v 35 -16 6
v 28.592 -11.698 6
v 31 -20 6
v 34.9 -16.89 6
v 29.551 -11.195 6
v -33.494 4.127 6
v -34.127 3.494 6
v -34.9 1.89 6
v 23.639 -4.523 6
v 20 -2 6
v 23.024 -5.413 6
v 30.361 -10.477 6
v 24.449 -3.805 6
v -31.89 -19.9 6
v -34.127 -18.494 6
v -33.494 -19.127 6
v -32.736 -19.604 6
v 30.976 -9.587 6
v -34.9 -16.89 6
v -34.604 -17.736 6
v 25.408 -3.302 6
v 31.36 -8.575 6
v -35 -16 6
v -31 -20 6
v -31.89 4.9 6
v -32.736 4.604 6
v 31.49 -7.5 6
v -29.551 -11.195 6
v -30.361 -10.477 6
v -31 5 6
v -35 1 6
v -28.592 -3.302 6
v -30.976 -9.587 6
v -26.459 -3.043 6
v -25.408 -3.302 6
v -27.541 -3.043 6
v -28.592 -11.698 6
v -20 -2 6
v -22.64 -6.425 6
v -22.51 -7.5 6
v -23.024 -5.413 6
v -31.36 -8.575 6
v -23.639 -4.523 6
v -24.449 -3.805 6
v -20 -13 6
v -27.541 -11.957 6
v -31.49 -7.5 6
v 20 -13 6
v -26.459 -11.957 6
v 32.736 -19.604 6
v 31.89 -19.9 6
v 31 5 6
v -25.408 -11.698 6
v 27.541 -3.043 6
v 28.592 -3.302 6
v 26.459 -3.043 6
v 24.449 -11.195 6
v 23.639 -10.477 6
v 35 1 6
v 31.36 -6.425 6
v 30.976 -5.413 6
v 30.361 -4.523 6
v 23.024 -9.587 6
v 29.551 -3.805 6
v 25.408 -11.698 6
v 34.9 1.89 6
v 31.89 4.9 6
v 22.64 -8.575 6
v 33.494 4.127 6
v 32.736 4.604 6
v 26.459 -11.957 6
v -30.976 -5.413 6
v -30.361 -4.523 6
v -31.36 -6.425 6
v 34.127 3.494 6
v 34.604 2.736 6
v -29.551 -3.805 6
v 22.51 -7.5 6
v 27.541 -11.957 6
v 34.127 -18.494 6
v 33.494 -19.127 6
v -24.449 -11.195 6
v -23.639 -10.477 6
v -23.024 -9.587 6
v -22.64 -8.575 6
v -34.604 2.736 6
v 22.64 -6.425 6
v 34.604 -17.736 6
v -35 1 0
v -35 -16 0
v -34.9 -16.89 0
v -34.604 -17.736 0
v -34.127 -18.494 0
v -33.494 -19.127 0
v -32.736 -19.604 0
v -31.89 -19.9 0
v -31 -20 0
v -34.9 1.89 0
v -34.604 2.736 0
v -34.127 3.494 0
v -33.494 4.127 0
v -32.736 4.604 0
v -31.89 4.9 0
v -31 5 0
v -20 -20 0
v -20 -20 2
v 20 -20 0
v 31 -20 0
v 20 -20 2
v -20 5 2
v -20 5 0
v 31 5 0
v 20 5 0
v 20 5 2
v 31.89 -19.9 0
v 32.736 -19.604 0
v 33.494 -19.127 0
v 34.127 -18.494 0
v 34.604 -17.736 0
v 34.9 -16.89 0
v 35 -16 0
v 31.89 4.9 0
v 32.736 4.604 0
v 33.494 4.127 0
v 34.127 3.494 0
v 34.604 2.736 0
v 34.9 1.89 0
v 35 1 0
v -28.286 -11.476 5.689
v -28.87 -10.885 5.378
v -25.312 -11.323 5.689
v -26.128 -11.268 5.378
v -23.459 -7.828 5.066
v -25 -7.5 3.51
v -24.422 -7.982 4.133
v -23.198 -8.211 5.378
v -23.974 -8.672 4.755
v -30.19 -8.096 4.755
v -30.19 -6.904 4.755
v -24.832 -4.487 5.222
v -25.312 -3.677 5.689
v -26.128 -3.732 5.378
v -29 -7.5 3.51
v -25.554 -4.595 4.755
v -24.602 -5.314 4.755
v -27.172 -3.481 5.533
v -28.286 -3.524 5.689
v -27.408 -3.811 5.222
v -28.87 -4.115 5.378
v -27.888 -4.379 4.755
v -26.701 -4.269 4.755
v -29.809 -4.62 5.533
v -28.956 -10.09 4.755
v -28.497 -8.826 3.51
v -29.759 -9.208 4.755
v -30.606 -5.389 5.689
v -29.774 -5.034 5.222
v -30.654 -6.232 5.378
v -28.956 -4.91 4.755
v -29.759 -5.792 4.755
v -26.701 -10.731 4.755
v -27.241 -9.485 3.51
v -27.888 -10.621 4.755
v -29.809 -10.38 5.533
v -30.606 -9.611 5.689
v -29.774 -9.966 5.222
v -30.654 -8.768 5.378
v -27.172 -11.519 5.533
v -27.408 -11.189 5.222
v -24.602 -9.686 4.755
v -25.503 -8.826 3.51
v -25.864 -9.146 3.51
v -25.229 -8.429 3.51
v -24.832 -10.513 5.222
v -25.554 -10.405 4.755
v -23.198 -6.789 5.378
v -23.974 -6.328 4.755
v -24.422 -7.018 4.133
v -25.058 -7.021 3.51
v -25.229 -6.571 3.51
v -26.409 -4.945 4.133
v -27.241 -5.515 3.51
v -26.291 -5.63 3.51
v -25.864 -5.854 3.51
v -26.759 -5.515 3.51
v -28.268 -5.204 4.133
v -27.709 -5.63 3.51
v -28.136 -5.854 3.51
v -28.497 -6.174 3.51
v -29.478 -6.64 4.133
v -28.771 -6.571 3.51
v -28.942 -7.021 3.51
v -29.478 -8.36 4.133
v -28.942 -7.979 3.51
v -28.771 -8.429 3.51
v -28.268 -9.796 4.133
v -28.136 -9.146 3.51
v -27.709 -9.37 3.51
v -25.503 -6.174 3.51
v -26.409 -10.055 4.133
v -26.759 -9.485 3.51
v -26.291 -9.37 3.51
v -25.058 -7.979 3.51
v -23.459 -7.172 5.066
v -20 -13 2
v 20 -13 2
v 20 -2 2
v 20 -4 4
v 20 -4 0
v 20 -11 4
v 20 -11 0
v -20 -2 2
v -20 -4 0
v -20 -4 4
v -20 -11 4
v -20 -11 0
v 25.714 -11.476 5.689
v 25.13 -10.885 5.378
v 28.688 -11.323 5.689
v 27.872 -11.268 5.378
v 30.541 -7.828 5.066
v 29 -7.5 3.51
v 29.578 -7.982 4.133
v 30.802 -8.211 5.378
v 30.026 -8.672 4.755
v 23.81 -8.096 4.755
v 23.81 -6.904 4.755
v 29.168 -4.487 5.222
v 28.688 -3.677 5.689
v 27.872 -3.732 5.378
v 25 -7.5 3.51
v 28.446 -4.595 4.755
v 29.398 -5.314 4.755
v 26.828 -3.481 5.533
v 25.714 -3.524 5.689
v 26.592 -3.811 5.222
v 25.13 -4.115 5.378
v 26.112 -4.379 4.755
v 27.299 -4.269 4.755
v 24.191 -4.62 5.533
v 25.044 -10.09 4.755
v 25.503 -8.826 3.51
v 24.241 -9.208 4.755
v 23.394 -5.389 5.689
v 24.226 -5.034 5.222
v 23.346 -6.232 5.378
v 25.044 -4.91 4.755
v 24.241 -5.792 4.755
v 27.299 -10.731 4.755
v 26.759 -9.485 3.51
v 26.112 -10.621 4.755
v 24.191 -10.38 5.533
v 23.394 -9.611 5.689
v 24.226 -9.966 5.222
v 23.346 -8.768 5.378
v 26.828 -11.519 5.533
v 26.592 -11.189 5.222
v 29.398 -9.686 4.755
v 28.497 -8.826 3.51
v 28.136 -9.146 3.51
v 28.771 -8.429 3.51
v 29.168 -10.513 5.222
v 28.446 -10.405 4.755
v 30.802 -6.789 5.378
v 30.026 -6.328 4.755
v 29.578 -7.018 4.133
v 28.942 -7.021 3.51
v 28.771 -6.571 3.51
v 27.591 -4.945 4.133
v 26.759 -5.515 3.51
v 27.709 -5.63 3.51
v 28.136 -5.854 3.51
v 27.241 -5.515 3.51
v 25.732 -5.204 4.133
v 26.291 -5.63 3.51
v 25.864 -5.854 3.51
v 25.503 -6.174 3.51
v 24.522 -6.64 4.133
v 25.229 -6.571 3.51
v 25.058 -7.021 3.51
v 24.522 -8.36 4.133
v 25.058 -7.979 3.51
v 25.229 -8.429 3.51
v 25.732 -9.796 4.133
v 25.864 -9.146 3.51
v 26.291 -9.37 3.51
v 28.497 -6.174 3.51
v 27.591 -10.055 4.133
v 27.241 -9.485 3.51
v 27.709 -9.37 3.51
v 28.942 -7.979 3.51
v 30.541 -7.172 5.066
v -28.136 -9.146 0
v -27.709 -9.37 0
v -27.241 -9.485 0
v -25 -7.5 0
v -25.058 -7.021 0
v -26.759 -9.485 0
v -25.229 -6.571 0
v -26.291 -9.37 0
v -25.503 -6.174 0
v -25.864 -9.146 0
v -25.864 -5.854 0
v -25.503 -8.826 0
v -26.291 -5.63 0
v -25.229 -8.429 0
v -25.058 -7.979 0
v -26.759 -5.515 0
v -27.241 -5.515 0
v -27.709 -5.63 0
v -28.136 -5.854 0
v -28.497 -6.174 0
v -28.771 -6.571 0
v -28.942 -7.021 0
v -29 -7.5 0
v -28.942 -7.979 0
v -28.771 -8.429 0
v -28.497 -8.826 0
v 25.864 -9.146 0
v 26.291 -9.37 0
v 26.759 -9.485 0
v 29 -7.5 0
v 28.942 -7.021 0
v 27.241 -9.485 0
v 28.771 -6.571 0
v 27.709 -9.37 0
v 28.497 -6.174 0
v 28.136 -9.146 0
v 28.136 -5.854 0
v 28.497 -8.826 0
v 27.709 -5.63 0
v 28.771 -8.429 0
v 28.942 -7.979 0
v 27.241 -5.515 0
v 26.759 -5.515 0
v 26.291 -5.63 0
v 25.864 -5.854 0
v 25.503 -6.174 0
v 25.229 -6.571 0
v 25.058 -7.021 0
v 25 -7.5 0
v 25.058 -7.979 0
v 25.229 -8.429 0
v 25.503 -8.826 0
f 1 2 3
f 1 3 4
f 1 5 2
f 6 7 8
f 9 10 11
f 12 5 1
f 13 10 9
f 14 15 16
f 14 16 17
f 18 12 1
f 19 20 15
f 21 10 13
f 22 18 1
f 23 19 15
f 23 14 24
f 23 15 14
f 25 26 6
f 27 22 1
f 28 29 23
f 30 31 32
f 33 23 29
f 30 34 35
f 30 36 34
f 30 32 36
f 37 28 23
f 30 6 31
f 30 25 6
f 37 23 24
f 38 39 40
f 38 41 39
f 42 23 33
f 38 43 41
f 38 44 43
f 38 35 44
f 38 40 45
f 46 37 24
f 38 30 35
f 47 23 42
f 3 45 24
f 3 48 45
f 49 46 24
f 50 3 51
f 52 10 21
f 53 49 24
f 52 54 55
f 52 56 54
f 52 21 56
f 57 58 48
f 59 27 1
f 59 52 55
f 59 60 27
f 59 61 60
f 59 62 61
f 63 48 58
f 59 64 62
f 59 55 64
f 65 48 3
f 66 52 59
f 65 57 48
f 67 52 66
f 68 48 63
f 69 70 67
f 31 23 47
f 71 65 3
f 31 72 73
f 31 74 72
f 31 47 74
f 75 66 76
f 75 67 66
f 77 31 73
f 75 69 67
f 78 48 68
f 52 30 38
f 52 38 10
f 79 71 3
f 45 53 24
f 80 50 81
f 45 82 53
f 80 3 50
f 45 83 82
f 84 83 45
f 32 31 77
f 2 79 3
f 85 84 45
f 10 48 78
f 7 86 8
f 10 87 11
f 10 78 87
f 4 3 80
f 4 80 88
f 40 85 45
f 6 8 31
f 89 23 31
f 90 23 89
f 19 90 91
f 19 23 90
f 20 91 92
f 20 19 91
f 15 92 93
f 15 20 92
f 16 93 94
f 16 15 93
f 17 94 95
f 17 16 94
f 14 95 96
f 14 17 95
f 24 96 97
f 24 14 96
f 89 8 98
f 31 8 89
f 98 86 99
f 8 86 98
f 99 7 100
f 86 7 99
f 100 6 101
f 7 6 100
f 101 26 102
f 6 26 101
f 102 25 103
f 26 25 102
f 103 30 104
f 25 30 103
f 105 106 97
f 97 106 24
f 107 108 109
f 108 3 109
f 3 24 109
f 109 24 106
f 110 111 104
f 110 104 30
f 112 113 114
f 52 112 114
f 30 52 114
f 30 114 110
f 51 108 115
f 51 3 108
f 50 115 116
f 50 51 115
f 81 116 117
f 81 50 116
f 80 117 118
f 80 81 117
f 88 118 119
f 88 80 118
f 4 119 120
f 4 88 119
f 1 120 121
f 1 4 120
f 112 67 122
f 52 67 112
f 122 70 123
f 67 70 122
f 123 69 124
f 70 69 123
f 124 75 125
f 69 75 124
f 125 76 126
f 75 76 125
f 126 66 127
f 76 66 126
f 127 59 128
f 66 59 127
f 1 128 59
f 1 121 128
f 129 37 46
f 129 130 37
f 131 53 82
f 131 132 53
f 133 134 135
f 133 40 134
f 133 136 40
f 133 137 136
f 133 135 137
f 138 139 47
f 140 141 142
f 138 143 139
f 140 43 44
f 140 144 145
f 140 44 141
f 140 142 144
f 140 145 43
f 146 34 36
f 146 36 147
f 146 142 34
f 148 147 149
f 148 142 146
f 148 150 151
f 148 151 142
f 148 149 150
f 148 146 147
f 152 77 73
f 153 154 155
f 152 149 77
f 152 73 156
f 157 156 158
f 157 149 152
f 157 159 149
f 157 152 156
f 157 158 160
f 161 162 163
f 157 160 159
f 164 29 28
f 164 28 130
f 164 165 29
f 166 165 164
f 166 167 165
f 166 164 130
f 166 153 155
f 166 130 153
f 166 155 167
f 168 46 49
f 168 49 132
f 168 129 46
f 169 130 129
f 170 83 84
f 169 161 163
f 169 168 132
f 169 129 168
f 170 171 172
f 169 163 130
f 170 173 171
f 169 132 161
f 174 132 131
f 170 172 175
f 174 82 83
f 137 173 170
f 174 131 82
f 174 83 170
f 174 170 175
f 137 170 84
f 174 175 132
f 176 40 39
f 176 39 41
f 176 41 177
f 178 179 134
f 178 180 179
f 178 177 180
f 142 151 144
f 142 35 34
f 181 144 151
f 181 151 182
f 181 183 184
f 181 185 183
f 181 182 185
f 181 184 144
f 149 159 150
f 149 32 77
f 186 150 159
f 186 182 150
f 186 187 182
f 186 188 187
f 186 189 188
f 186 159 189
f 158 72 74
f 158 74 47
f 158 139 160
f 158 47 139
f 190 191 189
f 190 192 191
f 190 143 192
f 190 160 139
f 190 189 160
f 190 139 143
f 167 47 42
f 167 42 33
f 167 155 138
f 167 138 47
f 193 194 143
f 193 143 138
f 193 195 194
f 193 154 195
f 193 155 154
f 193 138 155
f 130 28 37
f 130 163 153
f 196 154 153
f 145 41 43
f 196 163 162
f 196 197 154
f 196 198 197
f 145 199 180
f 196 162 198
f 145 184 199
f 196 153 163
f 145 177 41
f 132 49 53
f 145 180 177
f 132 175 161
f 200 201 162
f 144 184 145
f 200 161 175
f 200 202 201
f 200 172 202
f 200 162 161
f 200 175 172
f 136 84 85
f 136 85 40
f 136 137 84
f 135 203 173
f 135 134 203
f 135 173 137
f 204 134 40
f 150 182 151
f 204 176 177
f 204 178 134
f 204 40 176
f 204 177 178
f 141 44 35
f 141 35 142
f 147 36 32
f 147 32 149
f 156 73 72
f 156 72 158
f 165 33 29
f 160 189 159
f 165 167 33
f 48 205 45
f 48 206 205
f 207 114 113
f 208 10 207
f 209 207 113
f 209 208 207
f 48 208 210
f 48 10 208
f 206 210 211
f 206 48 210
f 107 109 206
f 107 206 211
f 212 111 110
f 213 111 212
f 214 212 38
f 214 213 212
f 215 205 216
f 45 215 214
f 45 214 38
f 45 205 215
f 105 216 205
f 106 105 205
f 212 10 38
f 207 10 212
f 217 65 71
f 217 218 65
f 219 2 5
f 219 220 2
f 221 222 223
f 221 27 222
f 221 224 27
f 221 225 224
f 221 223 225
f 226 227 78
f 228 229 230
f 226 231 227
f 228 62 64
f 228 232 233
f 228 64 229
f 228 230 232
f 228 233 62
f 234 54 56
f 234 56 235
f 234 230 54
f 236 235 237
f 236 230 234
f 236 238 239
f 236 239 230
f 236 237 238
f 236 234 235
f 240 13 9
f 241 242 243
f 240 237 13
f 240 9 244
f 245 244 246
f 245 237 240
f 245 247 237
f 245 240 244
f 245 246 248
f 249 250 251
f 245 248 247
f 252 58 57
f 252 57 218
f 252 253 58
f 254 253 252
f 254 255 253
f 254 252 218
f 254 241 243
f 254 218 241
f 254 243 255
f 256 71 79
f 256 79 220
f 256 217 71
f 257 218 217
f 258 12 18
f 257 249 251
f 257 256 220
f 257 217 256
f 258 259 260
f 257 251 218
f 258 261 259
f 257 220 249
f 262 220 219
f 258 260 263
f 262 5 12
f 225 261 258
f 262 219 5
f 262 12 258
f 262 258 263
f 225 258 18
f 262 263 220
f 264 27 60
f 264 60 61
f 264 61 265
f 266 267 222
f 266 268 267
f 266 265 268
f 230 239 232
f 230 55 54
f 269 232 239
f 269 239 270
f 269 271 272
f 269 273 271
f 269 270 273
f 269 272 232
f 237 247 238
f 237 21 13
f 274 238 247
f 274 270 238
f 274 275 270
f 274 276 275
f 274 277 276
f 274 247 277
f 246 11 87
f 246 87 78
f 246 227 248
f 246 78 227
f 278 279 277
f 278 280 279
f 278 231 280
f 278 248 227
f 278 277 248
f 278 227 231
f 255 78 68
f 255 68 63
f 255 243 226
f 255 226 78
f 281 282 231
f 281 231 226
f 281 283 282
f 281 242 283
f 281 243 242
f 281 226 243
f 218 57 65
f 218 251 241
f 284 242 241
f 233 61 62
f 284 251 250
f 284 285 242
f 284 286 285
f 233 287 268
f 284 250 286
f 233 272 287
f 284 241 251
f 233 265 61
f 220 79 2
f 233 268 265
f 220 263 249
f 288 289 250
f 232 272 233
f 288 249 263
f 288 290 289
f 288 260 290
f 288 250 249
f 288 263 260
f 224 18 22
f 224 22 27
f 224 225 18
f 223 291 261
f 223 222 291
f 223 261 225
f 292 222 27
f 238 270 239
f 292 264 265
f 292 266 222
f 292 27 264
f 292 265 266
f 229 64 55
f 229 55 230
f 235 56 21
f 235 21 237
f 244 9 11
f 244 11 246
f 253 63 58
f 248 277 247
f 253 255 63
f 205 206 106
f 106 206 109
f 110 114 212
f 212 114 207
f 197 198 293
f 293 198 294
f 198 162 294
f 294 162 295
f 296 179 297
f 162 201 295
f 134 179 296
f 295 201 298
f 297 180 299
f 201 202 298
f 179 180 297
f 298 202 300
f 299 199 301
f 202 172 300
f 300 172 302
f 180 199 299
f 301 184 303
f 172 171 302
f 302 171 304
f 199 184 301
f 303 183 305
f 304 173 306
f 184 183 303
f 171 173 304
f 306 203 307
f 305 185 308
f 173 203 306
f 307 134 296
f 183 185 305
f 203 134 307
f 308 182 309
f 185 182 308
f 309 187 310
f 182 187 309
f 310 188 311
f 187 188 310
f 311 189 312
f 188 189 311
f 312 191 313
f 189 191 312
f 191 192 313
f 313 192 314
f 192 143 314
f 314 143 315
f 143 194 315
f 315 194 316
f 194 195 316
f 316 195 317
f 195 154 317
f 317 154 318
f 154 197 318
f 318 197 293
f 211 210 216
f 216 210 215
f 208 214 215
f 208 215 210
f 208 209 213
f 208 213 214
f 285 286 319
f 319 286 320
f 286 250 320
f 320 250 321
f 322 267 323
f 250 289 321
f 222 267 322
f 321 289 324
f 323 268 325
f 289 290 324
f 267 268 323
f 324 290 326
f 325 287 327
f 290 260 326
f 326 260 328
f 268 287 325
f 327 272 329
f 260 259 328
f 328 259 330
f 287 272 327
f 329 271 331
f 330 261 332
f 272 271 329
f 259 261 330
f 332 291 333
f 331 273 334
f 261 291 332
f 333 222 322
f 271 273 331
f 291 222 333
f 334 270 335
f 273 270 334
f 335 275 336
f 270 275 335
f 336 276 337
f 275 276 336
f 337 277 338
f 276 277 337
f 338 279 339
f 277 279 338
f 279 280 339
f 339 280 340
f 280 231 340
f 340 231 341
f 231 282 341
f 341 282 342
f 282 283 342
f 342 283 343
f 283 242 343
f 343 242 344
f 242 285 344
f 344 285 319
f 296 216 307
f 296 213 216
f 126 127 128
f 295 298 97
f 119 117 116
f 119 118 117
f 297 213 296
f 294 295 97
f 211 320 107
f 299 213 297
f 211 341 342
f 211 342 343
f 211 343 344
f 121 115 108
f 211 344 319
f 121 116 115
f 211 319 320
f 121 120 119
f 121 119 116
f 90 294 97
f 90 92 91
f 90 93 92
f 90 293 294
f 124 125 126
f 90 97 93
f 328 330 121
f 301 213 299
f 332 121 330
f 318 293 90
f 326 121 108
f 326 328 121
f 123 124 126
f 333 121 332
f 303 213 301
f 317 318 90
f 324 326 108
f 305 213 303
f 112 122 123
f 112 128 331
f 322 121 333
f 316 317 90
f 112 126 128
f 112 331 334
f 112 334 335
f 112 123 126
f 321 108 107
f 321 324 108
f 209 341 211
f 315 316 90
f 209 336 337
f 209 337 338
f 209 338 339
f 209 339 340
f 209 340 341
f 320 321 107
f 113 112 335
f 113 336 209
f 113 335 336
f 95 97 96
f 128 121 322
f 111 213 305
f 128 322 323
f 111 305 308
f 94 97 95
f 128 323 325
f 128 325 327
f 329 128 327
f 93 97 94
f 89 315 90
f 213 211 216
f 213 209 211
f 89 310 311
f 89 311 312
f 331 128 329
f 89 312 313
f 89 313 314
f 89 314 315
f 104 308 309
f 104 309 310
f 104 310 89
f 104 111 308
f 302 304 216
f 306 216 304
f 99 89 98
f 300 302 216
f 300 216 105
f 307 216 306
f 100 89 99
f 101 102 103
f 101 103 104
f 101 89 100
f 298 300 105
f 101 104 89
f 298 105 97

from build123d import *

# Parameters (mm, degrees)
CYLINDER001_R     = 2
CYLINDER001_DEPTH = 10
CYLINDER003_R     = 2
CYLINDER003_DEPTH = 10
BOX006_W          = 40
BOX006_H          = 11
BOX006_DEPTH      = 10
BOX001_W          = 40
BOX001_H          = 25
BOX001_DEPTH      = 2
BOX_W             = 70
BOX_H             = 25
BOX_DEPTH         = 6
CHAMFER_SIZE      = 2.49
FILLET_R          = 4
BOX003_W          = 40
BOX003_H          = 7
BOX003_DEPTH      = 4


with BuildPart() as screwhole002:
    # Cylinder001 → Cylinder001 (new body)
    with BuildSketch(Plane(origin=(-27, -7.5, 0), x_dir=(1, 0, 0), z_dir=(0, 0, 1))):
        Circle(CYLINDER001_R)
    extrude(amount=CYLINDER001_DEPTH)


with BuildPart() as screwholes:
    # Cylinder003 → Cylinder003 (new body)
    with BuildSketch(Plane(origin=(27, -7.5, 0), x_dir=(1, 0, 0), z_dir=(0, 0, 1))):
        Circle(CYLINDER003_R)
    extrude(amount=CYLINDER003_DEPTH)

    # Fusion001: union ScrewHole002
    add(screwhole002.part)


with BuildPart() as cube001:
    # Box006 → Box006 (new body)
    with BuildSketch(Plane(origin=(-20, -13, 0), x_dir=(1, 0, 0), z_dir=(0, 0, 1))):
        with Locations((20, 5.5)):
            Rectangle(BOX006_W, BOX006_H)
    extrude(amount=BOX006_DEPTH)


with BuildPart() as cube:
    # Box001 → Box001 (new body)
    with BuildSketch(Plane(origin=(-20, -20, 0), x_dir=(1, 0, 0), z_dir=(0, 0, 1))):
        with Locations((20, 12.5)):
            Rectangle(BOX001_W, BOX001_H)
    extrude(amount=BOX001_DEPTH)


with BuildPart() as fillet_body:
    # Box → Box (new body)
    with BuildSketch(Plane(origin=(-35, -20, 0), x_dir=(1, 0, 0), z_dir=(0, 0, 1))):
        with Locations((35, 12.5)):
            Rectangle(BOX_W, BOX_H)
    extrude(amount=BOX_DEPTH)

    # Cut: cut Cube
    add(cube.part, mode=Mode.SUBTRACT)

    # Cut001: cut Cube001
    add(cube001.part, mode=Mode.SUBTRACT)

    # Cut002: cut ScrewHoles
    add(screwholes.part, mode=Mode.SUBTRACT)

    # Chamfer
    chamfer_edges = [fillet_body.edges().sort_by_distance(p)[0] for p in [
        (-29, -7.5, 6),
        (25, -7.5, 6),
    ]]
    chamfer(chamfer_edges, length=CHAMFER_SIZE)

    # Fillet
    fillet_edges = [fillet_body.edges().sort_by_distance(p)[0] for p in [
        (-35, -20, 3),
        (-35, 5, 3),
        (35, 5, 3),
        (35, -20, 3),
    ]]
    fillet(fillet_edges, radius=FILLET_R)


with BuildPart() as fusion:
    # Box003 → Box003 (new body)
    with BuildSketch(Plane(origin=(-20, -11, 0), x_dir=(1, 0, 0), z_dir=(0, 0, 1))):
        with Locations((20, 3.5)):
            Rectangle(BOX003_W, BOX003_H)
    extrude(amount=BOX003_DEPTH)

    # Fusion: union Fillet body
    add(fillet_body.part)


solid = fusion.part
